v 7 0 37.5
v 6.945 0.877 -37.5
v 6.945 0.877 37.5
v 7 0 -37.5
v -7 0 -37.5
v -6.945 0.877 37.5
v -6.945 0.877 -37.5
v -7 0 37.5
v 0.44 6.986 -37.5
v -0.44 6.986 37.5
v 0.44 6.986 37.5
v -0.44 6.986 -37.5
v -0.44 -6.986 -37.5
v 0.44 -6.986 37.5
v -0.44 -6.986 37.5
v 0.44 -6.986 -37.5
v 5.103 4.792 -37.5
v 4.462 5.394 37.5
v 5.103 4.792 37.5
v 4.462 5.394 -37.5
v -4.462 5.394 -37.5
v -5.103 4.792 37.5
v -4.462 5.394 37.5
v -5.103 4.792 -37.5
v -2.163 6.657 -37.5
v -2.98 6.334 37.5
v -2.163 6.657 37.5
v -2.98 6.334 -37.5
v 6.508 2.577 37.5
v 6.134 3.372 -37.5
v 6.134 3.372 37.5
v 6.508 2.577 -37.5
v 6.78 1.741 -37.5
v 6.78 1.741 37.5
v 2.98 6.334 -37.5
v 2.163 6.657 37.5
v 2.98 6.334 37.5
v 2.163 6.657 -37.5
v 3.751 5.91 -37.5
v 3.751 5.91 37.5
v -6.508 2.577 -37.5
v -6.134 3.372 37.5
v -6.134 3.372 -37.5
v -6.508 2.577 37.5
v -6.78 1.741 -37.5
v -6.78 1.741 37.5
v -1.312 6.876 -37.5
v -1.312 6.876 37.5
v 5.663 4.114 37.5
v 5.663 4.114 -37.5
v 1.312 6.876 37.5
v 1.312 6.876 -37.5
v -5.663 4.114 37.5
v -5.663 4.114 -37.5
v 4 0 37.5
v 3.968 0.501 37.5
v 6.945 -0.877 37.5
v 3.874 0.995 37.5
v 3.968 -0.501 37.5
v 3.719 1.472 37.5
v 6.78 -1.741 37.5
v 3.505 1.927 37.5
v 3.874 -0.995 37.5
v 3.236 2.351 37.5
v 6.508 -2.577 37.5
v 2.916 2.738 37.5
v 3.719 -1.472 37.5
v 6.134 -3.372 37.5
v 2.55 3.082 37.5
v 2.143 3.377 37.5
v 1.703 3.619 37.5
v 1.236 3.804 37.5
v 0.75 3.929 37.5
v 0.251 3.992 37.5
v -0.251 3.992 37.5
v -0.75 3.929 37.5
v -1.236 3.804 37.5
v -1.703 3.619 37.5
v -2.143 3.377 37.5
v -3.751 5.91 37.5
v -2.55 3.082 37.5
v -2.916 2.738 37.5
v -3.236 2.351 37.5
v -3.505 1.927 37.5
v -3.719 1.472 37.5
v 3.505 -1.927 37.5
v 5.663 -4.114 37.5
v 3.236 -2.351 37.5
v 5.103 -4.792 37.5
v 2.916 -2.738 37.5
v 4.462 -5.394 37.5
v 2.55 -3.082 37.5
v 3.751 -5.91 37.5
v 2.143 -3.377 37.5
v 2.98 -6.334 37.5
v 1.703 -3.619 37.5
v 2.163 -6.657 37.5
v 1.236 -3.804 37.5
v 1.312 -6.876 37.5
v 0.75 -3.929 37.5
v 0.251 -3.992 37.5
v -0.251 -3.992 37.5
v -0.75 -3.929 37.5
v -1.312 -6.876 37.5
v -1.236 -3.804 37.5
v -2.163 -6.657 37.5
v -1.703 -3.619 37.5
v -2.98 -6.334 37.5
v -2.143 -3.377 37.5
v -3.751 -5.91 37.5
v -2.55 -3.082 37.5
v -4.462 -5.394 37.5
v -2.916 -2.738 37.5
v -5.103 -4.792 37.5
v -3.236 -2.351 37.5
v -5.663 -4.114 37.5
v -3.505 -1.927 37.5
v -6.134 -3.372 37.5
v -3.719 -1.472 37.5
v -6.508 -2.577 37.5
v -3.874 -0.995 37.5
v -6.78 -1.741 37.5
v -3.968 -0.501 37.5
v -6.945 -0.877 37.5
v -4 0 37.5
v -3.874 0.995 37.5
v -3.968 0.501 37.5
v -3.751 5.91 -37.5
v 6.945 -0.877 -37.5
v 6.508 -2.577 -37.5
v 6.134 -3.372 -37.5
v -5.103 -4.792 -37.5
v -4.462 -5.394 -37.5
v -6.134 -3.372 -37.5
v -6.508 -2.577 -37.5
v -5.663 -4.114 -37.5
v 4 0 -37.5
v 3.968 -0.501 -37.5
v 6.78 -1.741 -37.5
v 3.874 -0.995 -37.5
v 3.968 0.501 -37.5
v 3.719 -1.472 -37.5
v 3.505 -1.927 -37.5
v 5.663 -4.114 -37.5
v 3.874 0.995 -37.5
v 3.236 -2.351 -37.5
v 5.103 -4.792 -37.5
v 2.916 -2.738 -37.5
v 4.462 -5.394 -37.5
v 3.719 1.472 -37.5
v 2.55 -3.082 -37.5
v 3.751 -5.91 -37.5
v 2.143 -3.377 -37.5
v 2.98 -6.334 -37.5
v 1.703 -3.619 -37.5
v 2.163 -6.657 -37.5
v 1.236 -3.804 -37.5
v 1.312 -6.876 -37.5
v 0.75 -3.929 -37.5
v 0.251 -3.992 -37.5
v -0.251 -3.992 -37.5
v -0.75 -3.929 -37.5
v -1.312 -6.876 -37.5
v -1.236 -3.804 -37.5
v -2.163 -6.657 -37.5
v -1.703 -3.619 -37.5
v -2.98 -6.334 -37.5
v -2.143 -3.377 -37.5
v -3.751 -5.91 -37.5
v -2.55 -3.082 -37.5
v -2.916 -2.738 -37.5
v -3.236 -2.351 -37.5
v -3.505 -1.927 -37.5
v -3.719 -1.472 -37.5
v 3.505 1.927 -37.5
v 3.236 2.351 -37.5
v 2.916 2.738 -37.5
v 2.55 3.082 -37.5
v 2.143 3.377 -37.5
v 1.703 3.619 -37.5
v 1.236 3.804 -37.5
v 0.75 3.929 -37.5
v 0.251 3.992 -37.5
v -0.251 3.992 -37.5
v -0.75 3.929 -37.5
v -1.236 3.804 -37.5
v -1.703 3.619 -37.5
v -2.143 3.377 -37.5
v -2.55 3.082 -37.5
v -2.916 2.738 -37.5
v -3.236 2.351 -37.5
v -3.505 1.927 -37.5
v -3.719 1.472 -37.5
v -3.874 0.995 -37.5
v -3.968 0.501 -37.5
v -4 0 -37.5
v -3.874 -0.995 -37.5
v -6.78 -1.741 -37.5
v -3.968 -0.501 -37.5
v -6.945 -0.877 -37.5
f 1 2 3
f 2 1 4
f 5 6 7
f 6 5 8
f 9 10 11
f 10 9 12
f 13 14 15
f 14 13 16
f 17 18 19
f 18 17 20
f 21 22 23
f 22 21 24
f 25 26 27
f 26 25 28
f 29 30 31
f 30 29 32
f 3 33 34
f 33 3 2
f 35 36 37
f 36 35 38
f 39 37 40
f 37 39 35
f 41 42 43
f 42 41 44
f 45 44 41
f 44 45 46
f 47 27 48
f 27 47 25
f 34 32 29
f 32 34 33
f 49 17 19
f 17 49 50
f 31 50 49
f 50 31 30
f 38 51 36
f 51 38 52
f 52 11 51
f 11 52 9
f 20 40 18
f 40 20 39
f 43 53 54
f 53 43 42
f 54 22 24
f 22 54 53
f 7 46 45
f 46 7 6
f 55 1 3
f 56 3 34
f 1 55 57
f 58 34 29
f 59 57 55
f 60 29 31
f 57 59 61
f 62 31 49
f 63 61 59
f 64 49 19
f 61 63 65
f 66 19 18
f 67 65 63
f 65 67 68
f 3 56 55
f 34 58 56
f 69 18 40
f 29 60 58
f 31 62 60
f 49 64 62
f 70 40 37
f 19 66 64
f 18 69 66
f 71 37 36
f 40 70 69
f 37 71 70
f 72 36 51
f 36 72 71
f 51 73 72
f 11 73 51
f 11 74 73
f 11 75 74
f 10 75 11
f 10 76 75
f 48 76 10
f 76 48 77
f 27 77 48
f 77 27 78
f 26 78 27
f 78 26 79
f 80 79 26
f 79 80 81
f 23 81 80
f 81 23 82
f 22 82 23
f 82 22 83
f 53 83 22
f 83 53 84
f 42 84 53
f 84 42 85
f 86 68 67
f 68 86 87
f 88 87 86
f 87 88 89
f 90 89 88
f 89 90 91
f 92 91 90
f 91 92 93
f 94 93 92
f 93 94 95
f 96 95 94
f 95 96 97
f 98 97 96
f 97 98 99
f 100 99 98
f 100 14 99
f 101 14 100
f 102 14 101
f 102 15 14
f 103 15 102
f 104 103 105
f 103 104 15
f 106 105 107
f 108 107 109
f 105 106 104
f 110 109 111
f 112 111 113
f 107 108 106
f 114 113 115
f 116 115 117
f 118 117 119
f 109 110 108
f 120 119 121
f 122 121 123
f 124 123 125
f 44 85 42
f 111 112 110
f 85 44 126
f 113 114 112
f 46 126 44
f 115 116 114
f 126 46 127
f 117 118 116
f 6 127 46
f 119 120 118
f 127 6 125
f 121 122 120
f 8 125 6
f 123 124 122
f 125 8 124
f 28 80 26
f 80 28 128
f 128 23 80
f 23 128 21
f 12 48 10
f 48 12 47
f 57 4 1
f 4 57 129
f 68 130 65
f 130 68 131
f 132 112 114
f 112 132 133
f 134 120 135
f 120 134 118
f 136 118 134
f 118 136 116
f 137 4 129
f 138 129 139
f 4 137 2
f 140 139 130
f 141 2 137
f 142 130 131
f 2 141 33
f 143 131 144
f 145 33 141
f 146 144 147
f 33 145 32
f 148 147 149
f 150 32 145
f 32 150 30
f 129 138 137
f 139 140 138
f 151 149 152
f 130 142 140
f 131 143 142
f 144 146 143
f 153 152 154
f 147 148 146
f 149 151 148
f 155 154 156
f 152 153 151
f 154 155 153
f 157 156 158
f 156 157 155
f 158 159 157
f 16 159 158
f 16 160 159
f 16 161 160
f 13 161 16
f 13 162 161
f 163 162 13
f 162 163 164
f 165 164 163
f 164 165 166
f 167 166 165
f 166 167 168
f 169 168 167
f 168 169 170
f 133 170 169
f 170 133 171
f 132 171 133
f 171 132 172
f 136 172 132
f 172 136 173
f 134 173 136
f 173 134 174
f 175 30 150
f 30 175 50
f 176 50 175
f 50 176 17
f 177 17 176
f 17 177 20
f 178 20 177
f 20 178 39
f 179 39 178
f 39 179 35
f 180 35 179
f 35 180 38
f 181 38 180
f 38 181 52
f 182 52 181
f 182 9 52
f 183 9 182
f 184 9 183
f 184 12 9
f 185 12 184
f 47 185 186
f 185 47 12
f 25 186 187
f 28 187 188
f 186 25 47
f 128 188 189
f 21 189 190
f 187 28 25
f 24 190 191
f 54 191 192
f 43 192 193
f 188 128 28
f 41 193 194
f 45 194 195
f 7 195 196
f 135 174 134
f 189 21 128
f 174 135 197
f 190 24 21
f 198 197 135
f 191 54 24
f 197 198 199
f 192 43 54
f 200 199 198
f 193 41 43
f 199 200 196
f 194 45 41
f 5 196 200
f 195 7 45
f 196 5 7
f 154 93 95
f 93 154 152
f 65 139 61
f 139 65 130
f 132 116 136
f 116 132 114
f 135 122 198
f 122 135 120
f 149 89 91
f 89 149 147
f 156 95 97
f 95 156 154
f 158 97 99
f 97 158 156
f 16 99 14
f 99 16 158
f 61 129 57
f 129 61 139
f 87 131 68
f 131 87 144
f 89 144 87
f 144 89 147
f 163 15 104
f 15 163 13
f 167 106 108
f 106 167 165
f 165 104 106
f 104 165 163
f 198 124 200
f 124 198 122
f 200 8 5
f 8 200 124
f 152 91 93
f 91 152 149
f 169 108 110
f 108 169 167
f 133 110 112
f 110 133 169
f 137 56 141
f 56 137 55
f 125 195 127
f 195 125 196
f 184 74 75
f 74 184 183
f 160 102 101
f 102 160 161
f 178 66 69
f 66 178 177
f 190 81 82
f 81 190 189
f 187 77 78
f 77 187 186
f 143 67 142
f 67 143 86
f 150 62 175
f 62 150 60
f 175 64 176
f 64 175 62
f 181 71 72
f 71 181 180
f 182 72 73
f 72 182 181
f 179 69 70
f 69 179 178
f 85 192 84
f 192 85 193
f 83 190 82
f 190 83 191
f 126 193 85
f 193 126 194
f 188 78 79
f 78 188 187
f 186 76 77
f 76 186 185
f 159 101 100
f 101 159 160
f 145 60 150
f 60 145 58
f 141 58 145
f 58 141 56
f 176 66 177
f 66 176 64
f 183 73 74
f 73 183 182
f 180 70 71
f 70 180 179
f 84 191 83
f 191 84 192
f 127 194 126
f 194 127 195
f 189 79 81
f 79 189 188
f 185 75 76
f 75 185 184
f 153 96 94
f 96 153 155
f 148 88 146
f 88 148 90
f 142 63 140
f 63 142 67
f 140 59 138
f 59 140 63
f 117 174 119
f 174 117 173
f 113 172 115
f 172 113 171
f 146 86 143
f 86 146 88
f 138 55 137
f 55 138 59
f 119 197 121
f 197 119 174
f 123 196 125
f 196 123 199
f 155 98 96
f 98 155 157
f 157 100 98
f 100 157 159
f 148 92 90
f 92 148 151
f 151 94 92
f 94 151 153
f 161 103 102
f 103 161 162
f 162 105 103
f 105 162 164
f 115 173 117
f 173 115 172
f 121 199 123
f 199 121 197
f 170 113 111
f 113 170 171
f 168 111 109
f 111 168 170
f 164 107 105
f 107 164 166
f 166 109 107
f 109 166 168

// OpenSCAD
$fn = 50;


difference() {
	union() {
		translate(v = [0, 0, -37.5000000000]) {
			cylinder(h = 75, r = 7.0000000000);
		}
	}
	union() {
		translate(v = [0, 0, -100.0000000000]) {
			cylinder(h = 200, r = 4);
		}
	}
}
